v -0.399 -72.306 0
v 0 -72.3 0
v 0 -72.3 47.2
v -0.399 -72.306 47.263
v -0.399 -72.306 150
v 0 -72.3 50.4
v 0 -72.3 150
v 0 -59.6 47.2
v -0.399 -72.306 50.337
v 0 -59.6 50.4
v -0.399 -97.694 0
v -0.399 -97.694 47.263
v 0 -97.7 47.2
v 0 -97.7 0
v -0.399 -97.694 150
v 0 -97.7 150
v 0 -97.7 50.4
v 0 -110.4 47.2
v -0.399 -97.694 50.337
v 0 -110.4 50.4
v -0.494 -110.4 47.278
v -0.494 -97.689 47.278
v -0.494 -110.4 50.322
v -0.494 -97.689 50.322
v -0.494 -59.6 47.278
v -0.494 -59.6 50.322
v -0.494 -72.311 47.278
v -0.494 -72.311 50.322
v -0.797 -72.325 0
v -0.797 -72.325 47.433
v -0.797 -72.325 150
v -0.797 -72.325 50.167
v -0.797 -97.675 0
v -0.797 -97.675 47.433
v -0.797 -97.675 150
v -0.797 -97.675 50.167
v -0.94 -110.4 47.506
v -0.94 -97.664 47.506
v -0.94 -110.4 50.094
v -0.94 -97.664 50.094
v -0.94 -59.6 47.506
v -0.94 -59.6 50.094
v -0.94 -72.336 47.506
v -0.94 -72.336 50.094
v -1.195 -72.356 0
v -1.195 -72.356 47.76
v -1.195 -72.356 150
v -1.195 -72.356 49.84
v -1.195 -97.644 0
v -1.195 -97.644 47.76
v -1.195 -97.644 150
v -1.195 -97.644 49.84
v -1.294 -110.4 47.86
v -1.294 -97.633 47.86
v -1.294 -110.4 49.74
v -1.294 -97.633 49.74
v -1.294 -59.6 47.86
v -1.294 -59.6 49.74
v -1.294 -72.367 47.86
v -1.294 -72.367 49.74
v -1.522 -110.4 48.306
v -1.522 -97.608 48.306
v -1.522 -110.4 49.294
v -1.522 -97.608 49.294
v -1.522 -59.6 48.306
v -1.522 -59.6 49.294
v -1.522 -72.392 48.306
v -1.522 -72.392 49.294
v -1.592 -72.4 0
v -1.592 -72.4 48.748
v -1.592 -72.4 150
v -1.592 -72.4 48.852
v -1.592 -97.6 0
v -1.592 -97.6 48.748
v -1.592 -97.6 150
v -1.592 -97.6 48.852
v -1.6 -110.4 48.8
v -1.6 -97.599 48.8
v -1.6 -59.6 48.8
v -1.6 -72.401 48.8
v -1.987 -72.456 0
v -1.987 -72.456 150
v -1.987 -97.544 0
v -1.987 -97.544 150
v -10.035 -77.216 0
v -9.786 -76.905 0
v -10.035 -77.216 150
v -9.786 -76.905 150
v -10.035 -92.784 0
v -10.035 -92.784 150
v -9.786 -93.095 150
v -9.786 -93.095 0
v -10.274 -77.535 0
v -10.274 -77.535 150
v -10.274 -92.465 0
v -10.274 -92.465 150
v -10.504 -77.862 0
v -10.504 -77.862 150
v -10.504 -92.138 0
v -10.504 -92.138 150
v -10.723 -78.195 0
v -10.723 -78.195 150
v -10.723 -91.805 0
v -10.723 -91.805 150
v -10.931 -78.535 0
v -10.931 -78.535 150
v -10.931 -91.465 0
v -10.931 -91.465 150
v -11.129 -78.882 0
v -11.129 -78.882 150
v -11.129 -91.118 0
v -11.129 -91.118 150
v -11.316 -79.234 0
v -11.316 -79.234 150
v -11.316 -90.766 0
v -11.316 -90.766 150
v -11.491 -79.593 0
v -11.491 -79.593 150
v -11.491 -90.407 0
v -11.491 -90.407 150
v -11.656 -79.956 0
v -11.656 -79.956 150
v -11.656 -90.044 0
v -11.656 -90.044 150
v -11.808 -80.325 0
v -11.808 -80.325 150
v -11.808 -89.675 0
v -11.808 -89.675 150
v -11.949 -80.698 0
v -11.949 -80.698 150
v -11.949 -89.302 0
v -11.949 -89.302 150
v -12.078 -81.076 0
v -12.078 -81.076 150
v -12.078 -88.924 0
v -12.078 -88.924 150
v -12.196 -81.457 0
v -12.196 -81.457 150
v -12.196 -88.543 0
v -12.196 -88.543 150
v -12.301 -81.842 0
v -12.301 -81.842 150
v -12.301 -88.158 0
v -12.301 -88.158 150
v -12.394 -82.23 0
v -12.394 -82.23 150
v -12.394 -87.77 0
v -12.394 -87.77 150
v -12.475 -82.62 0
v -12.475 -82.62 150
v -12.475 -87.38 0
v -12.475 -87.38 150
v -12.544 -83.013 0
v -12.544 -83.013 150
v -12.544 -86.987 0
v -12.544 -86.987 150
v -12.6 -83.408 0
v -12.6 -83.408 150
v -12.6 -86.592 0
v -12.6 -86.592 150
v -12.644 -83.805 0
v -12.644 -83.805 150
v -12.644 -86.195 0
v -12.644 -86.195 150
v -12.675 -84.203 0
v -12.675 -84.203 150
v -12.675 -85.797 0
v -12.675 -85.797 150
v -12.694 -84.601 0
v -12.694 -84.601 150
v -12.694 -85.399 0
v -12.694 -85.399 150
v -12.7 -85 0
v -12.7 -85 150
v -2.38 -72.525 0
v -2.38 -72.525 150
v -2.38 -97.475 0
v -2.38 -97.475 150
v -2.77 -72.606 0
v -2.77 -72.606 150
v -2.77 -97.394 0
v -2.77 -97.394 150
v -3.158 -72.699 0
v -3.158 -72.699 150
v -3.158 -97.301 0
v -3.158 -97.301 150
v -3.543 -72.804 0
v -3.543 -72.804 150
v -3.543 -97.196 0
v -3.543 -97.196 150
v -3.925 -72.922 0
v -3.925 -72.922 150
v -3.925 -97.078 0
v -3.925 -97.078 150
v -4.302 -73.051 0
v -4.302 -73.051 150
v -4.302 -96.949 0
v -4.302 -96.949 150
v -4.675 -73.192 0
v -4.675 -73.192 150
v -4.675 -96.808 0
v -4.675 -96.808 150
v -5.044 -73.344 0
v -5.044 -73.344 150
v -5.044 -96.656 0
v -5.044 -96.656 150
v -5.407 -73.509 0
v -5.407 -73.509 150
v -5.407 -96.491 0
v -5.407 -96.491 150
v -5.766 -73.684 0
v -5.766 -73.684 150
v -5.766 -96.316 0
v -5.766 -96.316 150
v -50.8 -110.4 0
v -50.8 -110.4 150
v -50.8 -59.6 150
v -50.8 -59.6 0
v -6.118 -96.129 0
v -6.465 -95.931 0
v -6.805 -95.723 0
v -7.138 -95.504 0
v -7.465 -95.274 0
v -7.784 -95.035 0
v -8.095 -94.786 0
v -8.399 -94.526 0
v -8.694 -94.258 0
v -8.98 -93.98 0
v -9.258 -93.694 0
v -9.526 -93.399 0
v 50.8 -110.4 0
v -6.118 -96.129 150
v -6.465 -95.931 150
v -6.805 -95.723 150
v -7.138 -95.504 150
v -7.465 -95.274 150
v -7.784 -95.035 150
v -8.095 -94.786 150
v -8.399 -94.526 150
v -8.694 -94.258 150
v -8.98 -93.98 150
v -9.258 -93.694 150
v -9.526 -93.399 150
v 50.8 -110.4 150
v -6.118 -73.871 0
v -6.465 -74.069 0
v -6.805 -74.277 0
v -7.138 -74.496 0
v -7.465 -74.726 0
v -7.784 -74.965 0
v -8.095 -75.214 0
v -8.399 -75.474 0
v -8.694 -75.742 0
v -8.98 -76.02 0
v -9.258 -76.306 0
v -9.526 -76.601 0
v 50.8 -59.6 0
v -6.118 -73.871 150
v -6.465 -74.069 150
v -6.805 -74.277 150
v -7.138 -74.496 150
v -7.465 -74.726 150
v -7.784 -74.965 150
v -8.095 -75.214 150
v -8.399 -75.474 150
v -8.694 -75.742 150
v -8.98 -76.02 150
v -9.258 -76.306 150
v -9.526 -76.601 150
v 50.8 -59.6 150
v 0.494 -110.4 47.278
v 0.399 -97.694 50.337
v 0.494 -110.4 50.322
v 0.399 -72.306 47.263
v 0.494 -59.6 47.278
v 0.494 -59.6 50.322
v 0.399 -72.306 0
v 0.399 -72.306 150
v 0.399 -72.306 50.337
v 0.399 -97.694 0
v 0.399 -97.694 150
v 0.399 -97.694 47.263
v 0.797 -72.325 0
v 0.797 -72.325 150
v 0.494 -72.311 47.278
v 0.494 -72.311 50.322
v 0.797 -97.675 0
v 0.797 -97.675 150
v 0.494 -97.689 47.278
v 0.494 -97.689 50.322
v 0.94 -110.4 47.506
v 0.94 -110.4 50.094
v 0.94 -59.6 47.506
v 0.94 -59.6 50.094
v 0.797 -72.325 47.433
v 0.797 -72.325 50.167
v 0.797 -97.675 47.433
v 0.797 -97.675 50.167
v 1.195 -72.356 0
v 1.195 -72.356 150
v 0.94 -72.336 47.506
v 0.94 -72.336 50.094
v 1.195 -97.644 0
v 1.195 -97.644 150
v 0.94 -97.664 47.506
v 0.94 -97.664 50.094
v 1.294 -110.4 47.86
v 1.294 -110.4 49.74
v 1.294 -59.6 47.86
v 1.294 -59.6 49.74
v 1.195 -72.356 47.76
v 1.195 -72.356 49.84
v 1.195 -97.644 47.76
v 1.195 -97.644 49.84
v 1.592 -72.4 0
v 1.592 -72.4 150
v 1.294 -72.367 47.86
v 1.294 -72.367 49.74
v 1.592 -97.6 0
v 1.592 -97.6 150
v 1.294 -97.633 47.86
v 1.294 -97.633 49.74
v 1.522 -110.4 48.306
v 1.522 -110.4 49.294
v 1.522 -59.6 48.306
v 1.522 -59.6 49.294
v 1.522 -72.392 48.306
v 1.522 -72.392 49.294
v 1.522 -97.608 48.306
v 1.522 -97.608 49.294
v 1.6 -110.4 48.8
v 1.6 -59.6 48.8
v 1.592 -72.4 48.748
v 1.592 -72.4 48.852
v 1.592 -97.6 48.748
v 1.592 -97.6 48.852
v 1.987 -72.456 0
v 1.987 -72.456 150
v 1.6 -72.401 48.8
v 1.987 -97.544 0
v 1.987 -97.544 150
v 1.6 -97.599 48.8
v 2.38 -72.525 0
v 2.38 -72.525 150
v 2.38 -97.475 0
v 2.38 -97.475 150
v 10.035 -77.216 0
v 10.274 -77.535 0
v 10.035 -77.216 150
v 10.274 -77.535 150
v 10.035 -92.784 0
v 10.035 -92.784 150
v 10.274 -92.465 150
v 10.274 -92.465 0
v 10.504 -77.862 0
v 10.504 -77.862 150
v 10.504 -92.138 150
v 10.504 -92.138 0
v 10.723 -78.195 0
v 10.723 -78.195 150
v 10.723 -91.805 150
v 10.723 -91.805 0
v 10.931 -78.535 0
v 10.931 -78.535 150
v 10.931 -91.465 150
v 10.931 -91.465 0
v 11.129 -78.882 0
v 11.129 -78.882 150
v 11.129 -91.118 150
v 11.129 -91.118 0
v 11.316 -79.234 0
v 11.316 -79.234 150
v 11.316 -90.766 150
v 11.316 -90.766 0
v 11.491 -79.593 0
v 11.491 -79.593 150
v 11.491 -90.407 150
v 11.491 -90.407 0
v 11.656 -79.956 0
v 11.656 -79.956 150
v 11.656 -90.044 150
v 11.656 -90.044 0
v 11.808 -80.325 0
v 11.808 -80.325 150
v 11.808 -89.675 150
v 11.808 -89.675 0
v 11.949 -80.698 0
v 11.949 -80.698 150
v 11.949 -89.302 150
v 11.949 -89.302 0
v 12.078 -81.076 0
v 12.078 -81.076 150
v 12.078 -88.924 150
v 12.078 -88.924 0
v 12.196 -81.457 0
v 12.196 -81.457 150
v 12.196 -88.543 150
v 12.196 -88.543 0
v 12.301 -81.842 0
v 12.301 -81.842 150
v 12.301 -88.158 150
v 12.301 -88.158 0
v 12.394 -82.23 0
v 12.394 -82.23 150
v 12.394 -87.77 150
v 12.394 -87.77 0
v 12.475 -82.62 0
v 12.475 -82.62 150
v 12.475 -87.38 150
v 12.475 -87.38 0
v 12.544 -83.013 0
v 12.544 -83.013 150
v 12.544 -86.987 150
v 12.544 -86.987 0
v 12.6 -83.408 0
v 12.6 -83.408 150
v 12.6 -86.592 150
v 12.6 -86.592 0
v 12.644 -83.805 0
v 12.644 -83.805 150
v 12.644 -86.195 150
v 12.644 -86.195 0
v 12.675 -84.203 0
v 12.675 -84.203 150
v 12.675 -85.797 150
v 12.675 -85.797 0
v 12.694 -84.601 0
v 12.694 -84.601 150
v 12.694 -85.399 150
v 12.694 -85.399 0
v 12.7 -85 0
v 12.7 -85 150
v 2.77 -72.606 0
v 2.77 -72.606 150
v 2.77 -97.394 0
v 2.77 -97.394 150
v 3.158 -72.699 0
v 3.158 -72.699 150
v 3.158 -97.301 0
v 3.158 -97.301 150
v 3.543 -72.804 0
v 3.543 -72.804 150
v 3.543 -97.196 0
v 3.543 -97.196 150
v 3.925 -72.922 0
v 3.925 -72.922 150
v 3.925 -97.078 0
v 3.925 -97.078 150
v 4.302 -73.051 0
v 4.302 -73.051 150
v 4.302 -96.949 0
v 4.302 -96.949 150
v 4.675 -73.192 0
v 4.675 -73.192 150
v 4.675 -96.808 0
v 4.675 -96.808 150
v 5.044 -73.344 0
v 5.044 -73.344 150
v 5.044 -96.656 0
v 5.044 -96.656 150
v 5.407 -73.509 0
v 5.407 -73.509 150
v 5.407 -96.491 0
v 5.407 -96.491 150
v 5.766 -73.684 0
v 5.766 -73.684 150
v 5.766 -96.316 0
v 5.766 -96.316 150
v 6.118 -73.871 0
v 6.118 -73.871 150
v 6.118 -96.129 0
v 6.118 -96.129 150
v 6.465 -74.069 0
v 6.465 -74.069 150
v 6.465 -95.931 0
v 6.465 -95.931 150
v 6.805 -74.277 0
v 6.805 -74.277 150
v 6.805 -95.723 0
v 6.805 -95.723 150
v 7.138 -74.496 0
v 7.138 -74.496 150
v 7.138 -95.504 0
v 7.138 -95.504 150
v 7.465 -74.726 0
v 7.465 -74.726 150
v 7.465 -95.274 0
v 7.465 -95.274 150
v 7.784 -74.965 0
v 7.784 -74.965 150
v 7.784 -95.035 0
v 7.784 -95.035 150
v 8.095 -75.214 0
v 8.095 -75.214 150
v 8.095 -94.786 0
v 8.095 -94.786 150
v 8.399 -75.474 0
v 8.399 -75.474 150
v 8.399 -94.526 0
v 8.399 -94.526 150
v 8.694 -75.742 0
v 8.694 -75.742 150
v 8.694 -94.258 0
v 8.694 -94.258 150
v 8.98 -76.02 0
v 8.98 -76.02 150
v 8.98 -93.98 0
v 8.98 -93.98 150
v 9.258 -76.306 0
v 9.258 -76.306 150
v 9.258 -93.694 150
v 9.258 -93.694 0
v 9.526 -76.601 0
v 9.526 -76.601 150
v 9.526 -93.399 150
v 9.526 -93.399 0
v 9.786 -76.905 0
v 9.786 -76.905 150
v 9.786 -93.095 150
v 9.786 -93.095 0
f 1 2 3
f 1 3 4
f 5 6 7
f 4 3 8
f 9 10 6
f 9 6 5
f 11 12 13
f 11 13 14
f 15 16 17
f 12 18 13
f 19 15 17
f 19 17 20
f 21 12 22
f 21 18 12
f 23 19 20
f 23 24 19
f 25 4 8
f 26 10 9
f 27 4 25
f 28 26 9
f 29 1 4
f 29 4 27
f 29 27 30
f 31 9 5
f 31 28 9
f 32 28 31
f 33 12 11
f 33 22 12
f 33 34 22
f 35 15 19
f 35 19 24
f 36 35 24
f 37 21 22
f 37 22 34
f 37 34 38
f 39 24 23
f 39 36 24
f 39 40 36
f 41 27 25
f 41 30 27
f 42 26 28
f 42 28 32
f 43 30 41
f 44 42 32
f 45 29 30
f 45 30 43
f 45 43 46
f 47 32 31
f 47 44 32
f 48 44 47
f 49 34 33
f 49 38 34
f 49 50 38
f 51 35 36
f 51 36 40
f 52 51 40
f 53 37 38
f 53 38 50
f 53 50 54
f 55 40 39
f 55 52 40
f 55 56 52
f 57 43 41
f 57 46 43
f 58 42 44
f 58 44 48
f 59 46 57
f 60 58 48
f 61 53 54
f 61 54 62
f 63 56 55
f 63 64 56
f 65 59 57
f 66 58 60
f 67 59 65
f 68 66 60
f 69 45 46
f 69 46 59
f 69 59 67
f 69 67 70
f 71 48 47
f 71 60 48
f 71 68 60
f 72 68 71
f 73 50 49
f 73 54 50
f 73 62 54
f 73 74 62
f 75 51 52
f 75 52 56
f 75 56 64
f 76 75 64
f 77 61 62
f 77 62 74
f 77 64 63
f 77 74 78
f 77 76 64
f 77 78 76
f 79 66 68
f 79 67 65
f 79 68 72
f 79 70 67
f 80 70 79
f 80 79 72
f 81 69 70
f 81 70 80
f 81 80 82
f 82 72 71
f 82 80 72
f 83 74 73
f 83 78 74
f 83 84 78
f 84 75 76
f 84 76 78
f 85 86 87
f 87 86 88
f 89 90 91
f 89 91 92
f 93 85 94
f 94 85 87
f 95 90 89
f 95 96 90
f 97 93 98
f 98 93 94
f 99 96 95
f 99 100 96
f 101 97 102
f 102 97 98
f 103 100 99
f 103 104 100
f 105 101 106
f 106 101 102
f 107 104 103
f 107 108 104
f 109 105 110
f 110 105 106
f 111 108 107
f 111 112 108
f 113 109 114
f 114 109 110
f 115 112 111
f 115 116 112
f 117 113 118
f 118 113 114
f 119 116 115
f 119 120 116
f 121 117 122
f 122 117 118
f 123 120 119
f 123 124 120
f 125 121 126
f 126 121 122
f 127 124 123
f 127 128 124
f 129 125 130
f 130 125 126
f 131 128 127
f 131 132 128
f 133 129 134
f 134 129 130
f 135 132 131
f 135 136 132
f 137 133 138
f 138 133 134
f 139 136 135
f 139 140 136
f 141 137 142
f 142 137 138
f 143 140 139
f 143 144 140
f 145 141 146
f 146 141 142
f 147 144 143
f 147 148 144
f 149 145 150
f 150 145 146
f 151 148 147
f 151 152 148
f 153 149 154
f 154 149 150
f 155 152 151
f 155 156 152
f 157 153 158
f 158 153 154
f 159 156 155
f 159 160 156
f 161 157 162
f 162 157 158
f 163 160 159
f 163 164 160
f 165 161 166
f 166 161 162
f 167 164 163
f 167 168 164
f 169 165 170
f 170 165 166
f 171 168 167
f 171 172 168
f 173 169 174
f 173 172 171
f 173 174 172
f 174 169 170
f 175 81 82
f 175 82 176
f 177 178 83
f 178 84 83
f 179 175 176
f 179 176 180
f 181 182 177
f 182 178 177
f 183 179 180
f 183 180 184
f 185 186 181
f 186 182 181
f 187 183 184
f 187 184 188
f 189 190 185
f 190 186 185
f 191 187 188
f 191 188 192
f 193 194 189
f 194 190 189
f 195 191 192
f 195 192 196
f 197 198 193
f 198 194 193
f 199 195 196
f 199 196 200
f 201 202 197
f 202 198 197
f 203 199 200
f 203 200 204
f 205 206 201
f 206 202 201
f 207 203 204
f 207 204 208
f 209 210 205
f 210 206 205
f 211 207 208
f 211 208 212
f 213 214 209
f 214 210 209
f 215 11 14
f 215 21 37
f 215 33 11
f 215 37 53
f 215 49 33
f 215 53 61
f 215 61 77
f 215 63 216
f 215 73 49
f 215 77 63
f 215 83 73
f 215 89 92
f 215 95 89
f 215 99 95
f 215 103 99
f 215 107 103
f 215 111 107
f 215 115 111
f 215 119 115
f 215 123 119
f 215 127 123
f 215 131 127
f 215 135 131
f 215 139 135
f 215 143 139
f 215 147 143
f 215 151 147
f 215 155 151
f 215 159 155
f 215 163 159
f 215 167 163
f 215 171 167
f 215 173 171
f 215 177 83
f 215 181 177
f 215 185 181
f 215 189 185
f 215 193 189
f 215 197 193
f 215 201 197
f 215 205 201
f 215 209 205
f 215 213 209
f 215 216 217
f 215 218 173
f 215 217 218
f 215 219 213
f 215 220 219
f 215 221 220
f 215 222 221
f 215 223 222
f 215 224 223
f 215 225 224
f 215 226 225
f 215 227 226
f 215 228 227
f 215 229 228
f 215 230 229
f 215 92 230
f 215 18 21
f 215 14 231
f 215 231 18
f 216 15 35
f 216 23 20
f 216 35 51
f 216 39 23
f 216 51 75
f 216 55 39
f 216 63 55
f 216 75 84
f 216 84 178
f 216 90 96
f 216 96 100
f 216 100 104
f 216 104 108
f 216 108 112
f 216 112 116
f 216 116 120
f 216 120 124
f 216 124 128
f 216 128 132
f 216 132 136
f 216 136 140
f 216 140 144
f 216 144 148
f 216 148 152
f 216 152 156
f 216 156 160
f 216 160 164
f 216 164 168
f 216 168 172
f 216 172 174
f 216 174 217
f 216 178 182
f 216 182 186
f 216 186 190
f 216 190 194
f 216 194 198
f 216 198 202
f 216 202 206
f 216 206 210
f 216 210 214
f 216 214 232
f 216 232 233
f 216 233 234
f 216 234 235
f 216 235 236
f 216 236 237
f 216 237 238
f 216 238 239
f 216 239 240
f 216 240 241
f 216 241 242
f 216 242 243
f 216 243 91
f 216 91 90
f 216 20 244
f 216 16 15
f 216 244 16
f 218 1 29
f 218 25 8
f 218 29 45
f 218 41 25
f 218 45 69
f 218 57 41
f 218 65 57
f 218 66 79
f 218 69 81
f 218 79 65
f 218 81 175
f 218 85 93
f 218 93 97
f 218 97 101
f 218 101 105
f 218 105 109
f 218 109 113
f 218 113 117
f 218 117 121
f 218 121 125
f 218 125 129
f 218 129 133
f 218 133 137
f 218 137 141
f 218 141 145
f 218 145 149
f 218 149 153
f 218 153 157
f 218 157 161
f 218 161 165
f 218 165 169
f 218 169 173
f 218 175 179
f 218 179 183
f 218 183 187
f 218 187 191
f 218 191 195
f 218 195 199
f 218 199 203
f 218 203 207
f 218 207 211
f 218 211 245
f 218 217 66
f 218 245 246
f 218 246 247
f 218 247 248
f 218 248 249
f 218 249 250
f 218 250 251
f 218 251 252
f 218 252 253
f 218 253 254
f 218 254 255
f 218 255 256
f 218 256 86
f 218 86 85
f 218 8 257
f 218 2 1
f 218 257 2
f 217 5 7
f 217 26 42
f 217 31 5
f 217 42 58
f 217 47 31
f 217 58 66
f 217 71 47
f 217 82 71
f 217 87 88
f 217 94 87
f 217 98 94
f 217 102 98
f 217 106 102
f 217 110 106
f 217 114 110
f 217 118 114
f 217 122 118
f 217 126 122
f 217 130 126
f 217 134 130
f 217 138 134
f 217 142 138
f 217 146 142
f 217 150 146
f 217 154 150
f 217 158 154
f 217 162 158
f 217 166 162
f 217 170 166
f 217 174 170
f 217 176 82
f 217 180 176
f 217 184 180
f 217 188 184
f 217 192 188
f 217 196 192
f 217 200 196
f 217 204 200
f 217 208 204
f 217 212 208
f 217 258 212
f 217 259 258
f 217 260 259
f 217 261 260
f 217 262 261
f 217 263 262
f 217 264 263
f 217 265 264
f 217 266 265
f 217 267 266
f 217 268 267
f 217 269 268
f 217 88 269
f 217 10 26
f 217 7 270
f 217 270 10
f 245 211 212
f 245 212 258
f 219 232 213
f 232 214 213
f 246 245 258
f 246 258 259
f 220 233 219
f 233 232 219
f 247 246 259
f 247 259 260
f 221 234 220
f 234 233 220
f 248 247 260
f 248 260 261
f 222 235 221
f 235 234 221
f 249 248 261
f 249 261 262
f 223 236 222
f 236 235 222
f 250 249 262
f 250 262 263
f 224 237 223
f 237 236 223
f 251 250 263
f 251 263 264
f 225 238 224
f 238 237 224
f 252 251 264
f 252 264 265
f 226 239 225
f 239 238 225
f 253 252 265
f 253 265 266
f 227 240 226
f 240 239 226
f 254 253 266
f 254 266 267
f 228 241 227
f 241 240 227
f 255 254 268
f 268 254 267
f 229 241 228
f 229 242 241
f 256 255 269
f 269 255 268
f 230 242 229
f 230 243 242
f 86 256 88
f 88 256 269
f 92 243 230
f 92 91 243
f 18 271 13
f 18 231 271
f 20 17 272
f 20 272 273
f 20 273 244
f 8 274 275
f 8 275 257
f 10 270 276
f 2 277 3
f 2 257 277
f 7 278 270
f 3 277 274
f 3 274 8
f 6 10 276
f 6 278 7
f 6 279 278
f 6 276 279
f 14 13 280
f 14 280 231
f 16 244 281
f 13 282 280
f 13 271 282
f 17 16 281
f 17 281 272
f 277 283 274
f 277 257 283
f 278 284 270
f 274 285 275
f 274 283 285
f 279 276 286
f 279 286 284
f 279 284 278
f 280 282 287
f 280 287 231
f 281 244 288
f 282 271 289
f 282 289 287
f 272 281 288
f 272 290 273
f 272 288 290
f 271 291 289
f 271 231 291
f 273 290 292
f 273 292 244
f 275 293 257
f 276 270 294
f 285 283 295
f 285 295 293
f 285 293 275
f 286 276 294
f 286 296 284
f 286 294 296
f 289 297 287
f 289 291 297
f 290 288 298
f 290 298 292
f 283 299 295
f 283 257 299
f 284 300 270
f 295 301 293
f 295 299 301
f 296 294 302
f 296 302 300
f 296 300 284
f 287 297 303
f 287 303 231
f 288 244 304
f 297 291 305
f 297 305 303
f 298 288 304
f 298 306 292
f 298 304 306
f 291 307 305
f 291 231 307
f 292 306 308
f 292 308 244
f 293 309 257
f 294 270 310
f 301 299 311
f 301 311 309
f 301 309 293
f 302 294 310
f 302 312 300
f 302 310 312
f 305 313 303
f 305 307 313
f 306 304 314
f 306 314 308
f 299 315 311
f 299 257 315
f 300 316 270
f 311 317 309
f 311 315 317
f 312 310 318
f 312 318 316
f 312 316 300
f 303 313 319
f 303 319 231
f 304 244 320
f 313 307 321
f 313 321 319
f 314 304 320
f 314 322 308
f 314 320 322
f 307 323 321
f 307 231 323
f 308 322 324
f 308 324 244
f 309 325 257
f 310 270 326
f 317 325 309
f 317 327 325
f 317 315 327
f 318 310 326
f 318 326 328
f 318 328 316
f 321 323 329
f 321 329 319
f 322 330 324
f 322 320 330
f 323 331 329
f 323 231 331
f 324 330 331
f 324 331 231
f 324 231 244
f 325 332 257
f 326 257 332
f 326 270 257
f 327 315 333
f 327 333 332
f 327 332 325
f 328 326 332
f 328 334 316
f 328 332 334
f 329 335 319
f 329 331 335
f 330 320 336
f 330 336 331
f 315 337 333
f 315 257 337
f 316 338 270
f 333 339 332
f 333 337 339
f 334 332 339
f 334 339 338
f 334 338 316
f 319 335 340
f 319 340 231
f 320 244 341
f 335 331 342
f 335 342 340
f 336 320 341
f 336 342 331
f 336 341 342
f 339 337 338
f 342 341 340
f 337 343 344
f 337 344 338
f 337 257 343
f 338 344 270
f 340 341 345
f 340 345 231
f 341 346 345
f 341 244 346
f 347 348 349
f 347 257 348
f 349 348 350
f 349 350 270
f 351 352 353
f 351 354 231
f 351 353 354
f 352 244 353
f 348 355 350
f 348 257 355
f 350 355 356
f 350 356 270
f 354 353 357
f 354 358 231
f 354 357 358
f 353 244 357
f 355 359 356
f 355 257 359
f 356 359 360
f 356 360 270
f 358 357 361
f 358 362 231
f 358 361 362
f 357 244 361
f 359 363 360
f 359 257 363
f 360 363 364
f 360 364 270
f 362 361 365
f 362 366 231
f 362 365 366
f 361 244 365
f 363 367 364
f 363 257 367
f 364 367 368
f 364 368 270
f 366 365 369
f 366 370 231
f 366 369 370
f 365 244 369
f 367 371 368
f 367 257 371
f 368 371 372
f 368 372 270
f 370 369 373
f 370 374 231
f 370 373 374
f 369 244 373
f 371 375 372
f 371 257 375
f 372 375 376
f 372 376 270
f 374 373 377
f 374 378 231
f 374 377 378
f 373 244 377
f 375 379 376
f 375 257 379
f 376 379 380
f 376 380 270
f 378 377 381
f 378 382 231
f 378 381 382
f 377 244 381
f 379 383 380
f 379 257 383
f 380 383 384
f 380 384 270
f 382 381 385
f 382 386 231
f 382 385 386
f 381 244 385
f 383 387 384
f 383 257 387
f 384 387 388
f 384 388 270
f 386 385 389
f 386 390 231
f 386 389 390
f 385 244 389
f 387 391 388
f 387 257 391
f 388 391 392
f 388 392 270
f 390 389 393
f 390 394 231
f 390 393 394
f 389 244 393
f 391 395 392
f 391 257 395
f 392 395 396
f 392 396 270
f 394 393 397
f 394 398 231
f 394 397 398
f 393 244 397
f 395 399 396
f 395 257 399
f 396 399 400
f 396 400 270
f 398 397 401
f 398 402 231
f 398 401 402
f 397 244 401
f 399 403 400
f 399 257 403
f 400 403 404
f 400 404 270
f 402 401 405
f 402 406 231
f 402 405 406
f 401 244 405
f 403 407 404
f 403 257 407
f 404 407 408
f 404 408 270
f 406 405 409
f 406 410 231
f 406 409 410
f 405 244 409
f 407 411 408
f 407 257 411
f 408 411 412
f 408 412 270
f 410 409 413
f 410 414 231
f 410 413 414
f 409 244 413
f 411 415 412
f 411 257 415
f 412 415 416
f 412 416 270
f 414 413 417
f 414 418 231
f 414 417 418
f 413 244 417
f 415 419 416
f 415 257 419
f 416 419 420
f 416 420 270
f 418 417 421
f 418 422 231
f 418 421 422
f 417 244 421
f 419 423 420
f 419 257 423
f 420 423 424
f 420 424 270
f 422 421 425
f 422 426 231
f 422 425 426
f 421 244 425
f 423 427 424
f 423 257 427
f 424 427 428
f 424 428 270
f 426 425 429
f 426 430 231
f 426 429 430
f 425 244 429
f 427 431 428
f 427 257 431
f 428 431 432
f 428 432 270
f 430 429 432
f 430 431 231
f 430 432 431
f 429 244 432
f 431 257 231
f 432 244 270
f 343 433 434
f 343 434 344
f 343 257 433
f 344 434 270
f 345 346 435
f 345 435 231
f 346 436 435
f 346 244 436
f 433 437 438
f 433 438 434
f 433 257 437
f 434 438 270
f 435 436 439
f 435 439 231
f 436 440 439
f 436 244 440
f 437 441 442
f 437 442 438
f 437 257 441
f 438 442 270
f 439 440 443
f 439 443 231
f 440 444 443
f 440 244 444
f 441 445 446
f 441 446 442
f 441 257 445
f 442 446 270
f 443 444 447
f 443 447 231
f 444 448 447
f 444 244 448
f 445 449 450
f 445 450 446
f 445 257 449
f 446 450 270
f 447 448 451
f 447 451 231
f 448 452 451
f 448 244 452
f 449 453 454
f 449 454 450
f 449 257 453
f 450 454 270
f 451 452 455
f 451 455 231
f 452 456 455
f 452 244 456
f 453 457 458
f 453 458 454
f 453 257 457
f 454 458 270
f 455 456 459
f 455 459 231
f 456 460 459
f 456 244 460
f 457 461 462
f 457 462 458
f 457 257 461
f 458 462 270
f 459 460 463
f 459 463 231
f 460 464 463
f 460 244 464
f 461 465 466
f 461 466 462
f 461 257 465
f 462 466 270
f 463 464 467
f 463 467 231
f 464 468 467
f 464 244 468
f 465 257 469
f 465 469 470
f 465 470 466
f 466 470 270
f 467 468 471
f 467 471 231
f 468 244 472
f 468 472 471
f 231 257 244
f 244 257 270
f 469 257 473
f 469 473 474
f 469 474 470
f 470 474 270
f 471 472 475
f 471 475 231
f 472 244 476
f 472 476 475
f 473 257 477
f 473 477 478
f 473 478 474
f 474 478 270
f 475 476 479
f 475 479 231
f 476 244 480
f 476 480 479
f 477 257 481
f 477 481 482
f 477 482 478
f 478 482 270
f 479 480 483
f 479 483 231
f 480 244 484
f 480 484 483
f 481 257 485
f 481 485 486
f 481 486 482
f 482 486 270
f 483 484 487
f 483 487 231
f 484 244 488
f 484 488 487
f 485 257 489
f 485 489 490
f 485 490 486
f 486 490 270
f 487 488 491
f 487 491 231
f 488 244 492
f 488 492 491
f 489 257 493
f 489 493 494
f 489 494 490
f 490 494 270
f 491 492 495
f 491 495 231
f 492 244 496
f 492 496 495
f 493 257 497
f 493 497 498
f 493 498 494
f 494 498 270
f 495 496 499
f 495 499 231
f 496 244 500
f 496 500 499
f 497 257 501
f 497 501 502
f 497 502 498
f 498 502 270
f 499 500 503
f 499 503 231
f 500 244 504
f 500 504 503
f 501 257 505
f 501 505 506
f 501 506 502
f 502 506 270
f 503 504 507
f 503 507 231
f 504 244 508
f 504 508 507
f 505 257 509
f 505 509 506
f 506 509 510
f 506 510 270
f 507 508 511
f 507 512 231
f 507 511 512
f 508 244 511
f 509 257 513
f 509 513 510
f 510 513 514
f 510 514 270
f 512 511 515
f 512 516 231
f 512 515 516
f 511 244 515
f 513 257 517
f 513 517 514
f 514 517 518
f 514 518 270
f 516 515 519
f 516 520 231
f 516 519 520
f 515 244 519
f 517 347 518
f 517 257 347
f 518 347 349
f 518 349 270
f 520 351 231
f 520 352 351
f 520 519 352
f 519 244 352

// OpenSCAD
include <../../../parameters.scad>
use <../888_1014.scad>

draft = false;


translate([0,-85,0])
    rotate([0,0,90])
        translate([0,0,-450])
                888_1014_part(3, draft);
